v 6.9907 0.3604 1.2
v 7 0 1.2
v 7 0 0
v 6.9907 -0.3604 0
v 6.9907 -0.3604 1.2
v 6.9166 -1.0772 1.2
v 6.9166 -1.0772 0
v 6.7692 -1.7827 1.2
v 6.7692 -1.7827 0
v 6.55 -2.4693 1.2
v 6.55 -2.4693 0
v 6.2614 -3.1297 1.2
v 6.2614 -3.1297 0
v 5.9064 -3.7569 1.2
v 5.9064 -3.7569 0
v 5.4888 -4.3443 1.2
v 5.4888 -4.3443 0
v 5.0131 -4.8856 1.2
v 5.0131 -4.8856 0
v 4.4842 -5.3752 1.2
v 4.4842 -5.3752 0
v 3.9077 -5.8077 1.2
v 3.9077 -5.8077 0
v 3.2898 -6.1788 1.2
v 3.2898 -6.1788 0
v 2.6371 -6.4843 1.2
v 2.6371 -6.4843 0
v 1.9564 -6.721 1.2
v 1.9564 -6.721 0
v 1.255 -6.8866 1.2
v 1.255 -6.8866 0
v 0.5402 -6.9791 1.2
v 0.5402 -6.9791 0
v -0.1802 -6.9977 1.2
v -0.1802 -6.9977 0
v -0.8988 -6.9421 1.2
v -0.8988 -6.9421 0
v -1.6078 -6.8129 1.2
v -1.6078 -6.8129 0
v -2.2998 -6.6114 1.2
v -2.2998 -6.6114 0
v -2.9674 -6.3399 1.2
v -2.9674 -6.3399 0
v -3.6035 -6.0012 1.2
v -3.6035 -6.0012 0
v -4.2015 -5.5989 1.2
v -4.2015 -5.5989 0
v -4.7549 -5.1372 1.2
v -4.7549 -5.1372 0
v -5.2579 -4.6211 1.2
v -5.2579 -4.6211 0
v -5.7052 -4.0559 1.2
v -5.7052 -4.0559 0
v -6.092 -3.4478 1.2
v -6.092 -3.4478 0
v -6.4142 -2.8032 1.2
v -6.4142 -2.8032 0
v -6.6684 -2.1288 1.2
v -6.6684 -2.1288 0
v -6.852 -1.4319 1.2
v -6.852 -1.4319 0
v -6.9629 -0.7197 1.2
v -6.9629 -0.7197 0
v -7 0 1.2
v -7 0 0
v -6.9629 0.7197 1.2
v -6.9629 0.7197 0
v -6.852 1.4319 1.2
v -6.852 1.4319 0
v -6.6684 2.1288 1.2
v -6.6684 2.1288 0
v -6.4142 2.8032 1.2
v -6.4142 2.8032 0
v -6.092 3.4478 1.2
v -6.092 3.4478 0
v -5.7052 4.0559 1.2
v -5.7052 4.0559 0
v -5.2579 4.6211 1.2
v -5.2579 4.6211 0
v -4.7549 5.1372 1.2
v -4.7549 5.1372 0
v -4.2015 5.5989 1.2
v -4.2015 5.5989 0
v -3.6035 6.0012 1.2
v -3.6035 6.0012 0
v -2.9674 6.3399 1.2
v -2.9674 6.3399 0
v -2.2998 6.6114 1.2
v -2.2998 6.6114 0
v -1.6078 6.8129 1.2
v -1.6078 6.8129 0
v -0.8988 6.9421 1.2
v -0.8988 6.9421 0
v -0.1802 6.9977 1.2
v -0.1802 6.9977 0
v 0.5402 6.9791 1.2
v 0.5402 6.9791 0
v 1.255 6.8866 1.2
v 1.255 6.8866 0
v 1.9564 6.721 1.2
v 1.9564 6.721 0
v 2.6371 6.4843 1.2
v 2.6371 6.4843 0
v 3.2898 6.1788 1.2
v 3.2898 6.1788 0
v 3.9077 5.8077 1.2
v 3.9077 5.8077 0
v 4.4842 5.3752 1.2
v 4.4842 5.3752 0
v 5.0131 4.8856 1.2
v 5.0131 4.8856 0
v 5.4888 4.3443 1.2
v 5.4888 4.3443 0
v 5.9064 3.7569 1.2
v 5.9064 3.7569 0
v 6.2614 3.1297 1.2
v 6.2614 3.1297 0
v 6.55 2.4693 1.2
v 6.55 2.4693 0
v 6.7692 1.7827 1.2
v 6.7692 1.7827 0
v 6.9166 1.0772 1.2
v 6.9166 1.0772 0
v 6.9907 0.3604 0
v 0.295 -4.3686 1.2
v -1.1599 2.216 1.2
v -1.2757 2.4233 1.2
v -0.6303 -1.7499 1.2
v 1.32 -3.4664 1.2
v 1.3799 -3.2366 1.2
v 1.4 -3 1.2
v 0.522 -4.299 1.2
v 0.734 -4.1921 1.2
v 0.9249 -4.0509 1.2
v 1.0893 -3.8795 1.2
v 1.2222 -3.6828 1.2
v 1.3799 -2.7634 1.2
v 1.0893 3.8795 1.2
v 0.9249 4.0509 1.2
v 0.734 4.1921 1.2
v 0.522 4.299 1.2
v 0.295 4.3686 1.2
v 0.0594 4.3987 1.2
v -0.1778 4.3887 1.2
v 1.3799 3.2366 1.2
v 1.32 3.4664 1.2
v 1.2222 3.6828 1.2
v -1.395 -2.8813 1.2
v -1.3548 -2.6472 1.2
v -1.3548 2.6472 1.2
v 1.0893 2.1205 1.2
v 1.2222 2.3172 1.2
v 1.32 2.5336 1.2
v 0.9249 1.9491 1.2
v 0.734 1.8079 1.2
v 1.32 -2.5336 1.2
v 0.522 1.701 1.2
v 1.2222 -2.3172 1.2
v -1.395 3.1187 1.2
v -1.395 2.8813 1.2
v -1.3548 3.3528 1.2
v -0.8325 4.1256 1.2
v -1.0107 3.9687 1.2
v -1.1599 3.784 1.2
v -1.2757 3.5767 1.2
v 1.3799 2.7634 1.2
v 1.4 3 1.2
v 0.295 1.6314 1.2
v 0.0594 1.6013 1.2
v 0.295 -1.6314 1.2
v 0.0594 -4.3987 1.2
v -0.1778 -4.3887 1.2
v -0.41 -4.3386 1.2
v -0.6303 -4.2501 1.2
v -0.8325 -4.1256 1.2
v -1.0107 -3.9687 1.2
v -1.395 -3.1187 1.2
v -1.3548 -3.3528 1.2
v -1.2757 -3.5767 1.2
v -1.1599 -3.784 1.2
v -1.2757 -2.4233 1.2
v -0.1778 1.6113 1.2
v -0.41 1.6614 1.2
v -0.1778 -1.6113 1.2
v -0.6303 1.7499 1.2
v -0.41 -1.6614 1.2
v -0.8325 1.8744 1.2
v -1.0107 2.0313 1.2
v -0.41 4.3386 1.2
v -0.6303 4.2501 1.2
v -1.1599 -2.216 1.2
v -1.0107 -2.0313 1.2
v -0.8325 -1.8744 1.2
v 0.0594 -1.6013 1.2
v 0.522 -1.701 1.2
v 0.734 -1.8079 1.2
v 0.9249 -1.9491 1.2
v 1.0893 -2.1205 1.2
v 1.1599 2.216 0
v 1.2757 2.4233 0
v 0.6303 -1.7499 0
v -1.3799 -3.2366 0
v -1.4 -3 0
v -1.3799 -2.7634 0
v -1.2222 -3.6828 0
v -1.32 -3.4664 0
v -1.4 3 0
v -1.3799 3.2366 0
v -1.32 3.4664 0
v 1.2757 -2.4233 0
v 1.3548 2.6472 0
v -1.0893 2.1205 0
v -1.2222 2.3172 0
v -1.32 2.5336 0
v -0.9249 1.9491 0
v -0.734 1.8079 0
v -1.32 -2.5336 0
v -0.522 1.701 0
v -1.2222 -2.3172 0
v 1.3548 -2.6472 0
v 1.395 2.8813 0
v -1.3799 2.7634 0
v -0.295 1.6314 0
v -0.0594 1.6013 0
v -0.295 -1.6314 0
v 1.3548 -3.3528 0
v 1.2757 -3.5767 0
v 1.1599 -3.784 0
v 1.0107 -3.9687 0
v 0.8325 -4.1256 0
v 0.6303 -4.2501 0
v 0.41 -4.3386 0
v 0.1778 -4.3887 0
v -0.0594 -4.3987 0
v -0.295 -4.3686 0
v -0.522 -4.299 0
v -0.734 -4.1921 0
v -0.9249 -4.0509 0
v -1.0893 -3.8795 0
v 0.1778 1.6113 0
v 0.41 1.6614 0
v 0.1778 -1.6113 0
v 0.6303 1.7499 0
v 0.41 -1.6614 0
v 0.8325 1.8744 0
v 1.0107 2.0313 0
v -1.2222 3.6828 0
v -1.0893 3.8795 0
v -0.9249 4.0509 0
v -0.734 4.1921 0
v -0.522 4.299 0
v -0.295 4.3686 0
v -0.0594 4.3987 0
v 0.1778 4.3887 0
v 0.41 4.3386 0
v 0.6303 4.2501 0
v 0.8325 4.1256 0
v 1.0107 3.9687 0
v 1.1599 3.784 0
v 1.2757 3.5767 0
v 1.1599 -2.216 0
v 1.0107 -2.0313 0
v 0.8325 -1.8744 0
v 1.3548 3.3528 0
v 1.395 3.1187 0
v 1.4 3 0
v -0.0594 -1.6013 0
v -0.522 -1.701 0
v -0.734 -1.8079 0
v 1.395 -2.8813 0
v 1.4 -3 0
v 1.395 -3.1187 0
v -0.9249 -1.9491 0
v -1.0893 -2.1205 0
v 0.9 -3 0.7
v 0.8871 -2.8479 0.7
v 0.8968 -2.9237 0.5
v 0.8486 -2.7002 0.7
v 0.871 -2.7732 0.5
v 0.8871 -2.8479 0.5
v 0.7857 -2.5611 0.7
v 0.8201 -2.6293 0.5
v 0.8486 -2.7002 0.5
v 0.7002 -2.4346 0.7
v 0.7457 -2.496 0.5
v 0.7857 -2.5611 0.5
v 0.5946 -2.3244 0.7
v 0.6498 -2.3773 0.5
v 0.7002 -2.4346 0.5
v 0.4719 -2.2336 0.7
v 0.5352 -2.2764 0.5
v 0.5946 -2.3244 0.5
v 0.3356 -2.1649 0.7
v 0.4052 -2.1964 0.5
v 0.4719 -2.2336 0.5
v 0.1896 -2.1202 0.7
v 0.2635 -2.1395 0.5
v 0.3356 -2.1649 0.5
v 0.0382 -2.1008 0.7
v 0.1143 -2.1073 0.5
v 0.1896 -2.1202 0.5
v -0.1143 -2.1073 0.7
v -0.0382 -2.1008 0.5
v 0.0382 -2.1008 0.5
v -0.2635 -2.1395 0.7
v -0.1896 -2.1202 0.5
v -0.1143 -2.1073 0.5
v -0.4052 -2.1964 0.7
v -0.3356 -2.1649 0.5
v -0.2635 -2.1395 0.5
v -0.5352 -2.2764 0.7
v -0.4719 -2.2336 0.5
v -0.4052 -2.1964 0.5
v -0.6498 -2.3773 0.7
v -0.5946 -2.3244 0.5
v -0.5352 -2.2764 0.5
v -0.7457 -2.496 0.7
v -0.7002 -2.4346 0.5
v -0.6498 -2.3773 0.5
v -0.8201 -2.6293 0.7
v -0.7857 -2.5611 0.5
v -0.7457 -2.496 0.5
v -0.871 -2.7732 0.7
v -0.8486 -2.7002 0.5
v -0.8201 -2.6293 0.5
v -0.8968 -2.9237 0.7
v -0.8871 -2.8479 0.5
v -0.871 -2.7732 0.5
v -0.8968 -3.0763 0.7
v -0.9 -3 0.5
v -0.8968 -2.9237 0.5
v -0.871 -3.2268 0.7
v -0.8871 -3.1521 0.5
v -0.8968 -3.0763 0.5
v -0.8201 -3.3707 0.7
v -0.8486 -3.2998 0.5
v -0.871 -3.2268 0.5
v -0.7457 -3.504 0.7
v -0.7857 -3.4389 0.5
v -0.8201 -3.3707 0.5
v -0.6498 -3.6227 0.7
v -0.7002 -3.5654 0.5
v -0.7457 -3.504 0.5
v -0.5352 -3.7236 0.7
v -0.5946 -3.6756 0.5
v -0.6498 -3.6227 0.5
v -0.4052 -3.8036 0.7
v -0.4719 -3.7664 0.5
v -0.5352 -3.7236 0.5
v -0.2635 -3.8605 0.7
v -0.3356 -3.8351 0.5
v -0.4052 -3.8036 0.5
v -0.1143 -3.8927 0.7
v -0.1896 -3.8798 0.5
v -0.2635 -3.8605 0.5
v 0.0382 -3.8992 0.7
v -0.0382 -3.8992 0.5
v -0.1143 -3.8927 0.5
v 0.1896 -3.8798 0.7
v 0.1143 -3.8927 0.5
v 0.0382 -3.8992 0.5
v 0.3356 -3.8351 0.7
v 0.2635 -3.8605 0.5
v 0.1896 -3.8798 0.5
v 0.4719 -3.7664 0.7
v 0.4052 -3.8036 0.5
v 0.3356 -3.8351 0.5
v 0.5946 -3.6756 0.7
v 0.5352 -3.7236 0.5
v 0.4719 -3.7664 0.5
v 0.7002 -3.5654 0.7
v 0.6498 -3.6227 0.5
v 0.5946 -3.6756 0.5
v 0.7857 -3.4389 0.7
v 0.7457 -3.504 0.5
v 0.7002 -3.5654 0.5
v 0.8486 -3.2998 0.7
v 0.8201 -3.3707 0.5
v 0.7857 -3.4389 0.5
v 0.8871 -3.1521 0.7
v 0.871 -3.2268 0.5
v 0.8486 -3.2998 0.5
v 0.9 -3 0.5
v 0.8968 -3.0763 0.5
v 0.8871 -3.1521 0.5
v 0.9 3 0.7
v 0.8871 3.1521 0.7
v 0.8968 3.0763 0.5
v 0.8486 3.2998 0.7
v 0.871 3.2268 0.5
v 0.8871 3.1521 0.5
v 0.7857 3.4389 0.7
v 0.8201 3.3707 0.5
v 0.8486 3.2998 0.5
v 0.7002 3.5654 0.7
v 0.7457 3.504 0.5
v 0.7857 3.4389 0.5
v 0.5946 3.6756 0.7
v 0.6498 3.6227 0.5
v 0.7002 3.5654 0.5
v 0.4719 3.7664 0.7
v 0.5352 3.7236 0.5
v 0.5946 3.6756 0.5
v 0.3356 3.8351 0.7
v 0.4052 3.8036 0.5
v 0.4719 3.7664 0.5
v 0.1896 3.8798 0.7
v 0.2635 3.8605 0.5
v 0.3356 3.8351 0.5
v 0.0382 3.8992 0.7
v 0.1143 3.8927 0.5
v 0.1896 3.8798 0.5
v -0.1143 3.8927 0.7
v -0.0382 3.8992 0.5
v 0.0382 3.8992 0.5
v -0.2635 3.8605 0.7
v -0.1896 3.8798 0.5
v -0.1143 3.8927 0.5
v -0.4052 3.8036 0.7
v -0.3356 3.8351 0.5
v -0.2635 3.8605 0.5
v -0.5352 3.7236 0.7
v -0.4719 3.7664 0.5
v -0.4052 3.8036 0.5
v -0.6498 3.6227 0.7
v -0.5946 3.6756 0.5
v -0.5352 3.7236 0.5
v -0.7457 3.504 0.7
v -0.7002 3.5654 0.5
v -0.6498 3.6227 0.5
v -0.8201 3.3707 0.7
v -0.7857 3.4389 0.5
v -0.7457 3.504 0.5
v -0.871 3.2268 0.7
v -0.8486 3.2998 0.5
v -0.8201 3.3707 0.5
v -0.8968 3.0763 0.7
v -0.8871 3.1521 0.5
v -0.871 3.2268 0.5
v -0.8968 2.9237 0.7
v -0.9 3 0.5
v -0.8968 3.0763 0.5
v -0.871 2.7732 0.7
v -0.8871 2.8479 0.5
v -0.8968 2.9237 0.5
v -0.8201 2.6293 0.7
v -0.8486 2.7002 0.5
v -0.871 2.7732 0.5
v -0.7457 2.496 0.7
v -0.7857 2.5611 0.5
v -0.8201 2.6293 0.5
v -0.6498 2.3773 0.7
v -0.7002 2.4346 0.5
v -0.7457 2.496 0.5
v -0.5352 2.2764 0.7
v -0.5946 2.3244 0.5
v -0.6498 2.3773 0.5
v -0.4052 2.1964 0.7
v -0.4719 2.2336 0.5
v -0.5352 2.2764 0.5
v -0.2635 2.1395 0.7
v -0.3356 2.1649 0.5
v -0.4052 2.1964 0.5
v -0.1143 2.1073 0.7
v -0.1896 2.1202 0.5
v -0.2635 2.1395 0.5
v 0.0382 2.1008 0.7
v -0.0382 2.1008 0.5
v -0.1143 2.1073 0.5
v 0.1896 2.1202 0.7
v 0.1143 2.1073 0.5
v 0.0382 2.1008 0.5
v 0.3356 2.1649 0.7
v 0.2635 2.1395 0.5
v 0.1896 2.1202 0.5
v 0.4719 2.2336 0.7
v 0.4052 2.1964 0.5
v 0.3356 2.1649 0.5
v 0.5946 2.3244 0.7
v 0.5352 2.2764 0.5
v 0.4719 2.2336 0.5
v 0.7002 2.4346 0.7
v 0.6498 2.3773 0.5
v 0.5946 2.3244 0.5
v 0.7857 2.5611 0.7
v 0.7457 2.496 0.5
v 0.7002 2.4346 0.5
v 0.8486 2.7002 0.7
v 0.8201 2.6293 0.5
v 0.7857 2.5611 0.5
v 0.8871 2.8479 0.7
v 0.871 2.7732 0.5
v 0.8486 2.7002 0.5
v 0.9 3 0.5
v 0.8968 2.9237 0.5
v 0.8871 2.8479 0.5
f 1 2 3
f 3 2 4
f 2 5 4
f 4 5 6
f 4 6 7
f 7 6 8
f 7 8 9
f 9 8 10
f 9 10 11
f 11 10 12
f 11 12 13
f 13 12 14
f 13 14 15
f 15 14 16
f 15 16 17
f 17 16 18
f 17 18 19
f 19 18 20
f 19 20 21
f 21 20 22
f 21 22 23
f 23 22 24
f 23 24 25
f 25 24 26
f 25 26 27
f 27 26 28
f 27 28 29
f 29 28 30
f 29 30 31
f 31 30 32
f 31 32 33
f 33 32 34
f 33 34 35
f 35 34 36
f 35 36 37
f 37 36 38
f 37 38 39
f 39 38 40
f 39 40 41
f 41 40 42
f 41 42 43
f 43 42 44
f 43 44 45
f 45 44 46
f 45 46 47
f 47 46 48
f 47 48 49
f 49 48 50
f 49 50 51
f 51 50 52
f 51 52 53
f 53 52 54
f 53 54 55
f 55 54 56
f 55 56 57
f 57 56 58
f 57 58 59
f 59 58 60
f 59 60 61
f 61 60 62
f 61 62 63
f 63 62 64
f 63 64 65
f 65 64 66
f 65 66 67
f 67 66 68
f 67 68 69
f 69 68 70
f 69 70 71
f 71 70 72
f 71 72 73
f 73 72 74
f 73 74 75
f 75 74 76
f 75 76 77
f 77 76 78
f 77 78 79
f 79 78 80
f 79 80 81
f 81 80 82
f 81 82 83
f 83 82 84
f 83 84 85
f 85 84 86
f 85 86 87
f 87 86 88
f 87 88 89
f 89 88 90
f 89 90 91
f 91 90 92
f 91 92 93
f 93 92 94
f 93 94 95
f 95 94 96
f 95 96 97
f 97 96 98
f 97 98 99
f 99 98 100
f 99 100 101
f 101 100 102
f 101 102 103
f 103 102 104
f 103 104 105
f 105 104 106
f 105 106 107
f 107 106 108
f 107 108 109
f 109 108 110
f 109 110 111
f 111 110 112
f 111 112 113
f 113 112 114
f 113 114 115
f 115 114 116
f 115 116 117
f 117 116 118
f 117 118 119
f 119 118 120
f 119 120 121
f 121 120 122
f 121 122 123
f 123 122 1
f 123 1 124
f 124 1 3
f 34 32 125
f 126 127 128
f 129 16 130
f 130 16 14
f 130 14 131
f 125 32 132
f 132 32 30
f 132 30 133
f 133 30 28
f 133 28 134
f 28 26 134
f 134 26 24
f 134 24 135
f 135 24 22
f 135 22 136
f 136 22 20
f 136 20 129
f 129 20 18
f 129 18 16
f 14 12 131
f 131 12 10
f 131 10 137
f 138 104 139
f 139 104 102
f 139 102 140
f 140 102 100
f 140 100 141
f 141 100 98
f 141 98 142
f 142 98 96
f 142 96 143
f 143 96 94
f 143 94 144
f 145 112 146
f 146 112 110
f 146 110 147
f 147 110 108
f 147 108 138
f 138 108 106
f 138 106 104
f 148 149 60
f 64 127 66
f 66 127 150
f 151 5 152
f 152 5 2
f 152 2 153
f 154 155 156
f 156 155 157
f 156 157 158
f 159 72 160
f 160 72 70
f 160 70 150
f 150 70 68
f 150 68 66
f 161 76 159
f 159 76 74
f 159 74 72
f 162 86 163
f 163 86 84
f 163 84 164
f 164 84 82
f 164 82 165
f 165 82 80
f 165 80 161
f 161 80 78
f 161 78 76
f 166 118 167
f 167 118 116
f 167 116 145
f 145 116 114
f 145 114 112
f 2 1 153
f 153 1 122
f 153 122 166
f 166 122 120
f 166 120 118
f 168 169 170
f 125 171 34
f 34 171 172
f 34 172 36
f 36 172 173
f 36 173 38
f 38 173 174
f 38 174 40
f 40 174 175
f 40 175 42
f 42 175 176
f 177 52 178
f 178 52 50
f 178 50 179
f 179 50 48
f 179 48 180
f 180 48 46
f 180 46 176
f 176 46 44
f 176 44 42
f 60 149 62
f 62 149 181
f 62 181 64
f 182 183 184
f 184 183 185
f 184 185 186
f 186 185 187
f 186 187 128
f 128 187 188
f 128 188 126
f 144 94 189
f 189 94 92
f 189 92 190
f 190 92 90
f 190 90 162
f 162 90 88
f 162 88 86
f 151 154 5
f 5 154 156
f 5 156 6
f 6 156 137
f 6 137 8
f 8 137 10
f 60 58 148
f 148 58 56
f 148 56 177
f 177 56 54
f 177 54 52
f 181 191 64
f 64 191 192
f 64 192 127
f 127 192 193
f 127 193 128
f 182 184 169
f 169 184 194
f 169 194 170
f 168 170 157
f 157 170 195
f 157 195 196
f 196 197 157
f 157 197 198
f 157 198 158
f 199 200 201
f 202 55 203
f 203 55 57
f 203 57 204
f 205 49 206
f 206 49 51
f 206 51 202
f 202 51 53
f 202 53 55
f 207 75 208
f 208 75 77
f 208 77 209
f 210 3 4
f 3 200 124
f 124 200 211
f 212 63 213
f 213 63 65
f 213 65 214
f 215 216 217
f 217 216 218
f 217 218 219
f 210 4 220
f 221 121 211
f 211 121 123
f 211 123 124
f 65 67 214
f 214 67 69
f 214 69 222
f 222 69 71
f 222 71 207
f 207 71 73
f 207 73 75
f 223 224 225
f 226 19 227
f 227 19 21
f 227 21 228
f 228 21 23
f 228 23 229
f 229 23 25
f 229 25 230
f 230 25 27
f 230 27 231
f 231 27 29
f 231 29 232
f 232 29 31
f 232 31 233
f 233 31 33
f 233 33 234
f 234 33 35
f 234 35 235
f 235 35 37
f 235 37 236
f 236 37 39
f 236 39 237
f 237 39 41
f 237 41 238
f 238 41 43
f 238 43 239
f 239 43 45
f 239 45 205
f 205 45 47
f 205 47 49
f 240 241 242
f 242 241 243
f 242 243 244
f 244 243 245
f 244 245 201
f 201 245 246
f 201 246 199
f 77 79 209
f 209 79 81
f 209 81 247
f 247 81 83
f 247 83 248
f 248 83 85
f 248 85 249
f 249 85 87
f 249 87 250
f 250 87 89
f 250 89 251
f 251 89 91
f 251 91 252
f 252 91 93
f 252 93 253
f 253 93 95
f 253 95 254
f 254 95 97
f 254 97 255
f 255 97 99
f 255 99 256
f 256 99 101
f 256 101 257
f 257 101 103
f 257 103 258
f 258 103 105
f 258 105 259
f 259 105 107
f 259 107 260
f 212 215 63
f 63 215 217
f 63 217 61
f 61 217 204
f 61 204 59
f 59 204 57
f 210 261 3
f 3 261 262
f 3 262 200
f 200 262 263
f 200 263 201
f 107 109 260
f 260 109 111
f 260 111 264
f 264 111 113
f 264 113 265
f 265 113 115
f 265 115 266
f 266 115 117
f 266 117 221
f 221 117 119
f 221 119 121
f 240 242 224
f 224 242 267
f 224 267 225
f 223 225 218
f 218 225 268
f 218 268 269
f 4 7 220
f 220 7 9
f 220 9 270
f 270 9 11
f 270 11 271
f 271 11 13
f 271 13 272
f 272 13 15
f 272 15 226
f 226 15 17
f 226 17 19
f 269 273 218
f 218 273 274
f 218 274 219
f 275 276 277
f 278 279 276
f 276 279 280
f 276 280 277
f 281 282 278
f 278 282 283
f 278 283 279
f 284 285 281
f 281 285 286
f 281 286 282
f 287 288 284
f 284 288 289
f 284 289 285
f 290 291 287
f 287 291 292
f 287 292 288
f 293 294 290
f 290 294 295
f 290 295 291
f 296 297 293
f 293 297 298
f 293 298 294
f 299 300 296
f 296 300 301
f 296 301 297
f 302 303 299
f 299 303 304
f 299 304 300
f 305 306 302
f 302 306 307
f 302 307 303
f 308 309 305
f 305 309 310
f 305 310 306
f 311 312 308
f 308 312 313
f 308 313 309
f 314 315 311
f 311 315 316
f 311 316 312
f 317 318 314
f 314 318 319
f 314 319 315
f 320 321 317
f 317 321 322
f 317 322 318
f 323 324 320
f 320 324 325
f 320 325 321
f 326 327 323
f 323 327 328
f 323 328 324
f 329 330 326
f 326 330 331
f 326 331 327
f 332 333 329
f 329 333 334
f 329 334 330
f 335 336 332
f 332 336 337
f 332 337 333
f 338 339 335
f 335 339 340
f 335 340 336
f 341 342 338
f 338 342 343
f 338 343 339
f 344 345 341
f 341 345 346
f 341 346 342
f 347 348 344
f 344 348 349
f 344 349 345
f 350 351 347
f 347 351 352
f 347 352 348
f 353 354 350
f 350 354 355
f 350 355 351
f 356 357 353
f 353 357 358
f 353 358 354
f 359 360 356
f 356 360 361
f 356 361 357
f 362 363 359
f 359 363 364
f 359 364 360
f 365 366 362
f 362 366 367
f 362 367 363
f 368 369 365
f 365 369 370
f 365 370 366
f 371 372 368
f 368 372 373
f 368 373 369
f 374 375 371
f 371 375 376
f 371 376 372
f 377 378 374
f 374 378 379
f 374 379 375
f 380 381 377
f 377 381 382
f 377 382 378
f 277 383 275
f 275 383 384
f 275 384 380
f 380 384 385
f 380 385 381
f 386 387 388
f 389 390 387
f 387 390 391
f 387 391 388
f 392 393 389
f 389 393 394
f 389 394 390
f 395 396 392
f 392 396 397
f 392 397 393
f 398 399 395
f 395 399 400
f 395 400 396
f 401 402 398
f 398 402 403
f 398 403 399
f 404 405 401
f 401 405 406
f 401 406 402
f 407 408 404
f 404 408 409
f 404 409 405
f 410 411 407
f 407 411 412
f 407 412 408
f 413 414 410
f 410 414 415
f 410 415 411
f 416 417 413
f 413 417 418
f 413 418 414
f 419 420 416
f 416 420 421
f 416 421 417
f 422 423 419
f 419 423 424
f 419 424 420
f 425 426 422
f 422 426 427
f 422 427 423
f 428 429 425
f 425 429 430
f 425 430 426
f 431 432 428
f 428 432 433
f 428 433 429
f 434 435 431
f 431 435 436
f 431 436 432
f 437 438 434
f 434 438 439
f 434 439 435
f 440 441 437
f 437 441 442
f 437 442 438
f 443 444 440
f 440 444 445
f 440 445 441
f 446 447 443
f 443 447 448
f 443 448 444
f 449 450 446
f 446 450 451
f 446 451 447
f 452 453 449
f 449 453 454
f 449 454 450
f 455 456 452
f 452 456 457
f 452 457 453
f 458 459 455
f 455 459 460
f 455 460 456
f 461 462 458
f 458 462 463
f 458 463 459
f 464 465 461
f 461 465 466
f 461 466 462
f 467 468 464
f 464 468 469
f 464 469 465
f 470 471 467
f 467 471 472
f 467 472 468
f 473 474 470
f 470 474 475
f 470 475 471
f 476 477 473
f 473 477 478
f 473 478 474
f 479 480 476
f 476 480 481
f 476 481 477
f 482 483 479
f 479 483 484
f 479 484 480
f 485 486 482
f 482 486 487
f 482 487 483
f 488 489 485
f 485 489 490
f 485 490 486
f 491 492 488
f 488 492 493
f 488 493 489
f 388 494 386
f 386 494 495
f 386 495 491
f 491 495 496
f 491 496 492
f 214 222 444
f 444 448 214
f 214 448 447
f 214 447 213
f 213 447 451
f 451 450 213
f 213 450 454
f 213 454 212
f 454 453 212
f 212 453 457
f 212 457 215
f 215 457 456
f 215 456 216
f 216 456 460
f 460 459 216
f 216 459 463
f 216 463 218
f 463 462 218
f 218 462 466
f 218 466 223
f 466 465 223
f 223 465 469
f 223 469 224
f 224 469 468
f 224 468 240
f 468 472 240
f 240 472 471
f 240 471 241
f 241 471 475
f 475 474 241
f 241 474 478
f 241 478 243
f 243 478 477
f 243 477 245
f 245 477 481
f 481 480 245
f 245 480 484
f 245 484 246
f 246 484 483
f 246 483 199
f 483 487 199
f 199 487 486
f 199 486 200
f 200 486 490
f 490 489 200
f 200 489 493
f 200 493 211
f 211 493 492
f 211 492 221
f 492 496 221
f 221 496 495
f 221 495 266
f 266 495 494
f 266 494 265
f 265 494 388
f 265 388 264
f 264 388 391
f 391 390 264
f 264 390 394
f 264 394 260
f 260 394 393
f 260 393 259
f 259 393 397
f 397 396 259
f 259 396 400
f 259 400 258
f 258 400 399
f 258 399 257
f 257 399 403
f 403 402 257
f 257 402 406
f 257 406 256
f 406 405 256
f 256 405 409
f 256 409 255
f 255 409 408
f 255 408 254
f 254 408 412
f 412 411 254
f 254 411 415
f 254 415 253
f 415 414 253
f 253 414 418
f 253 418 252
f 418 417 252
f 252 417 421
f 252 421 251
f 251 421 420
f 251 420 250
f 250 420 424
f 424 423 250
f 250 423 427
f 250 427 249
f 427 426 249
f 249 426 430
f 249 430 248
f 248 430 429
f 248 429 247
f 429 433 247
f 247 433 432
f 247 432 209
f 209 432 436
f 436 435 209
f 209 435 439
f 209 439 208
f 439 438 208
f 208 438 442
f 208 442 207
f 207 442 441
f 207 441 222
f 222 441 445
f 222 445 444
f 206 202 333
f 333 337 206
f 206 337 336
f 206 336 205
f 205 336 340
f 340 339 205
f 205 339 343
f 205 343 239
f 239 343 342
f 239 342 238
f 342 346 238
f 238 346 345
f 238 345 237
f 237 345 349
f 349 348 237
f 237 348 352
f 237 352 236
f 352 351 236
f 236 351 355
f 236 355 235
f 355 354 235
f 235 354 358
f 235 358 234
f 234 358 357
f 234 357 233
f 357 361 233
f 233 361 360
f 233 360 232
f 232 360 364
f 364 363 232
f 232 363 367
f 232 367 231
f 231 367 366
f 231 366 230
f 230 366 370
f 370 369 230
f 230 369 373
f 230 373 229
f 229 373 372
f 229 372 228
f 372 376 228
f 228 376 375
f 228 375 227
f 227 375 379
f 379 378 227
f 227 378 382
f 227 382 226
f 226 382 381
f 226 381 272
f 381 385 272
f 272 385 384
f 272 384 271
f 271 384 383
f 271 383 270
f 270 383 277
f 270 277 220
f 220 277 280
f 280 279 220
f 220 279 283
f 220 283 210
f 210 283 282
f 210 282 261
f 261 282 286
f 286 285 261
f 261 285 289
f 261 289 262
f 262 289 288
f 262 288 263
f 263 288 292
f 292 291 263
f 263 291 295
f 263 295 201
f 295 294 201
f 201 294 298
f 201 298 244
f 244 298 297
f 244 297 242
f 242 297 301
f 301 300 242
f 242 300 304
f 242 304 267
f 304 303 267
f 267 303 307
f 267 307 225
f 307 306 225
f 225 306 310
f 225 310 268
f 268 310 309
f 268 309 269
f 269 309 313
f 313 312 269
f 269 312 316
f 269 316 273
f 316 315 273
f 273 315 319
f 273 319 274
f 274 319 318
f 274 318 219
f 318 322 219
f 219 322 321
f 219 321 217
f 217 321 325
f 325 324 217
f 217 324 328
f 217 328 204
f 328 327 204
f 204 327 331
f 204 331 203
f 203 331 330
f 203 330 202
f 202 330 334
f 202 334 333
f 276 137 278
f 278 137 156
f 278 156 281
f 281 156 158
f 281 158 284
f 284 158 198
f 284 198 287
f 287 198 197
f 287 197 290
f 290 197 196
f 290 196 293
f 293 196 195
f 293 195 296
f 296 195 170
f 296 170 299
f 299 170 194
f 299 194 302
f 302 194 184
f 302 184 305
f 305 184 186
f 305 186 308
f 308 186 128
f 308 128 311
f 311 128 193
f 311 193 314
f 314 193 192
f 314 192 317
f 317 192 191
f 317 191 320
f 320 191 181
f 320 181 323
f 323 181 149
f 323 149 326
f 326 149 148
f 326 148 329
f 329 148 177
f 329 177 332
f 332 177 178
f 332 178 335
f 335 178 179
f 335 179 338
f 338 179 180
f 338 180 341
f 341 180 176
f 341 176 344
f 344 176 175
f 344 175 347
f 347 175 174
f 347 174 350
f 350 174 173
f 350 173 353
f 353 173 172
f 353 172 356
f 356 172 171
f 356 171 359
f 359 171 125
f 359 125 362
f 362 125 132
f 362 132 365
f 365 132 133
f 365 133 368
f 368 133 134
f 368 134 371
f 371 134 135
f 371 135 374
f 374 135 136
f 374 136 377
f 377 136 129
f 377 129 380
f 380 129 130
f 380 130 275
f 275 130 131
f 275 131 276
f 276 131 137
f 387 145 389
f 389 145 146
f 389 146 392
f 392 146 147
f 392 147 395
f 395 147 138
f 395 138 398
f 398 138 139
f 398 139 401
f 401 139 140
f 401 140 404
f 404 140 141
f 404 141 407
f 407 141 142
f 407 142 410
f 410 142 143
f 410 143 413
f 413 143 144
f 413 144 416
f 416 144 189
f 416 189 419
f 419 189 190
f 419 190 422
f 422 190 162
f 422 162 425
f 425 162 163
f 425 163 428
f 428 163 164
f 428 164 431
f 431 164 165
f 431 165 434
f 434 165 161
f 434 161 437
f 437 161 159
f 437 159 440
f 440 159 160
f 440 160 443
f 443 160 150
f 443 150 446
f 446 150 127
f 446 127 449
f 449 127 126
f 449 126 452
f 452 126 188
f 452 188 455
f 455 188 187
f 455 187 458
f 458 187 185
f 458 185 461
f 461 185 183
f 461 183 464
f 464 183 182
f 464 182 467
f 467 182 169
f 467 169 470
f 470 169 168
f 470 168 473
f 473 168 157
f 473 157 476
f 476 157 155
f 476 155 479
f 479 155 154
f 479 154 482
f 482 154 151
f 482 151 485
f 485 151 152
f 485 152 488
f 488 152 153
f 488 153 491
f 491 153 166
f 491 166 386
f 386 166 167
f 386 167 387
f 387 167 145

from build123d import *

# Parameters (mm, degrees)
SKETCH_1_R          = 7
EXTRUDE_1_DEPTH     = 1.2
SKETCH_2_R          = 0.9
CUT_EXTRUDE_1_DEPTH = 10.97196069
CHAMFER_1_SIZE      = 0.5


with BuildPart() as part:
    # 草图1 → 凸台-拉伸1 (new body)
    with BuildSketch(Plane.XY):
        Circle(SKETCH_1_R)
    extrude(amount=EXTRUDE_1_DEPTH)

    # 草图2 → 切除-拉伸1 (cut, through all)
    with BuildSketch(Plane.XY.offset(1.2)):
        with Locations((0, 3)):
            Circle(SKETCH_2_R)
        with Locations(Location((0, -3, 0), (0, 0, 180))):
            Circle(SKETCH_2_R)
    extrude(amount=-CUT_EXTRUDE_1_DEPTH, mode=Mode.SUBTRACT)

    # Chamfer 1
    chamfer_1_edges = [part.edges().sort_by_distance(p)[0] for p in [
        (0.9, -3, 1.2),
        (-0.9, 3, 0),
        (-0.9, 3, 1.2),
        (0.9, -3, 0),
    ]]
    chamfer(chamfer_1_edges, length=CHAMFER_1_SIZE)


solid = part.part
